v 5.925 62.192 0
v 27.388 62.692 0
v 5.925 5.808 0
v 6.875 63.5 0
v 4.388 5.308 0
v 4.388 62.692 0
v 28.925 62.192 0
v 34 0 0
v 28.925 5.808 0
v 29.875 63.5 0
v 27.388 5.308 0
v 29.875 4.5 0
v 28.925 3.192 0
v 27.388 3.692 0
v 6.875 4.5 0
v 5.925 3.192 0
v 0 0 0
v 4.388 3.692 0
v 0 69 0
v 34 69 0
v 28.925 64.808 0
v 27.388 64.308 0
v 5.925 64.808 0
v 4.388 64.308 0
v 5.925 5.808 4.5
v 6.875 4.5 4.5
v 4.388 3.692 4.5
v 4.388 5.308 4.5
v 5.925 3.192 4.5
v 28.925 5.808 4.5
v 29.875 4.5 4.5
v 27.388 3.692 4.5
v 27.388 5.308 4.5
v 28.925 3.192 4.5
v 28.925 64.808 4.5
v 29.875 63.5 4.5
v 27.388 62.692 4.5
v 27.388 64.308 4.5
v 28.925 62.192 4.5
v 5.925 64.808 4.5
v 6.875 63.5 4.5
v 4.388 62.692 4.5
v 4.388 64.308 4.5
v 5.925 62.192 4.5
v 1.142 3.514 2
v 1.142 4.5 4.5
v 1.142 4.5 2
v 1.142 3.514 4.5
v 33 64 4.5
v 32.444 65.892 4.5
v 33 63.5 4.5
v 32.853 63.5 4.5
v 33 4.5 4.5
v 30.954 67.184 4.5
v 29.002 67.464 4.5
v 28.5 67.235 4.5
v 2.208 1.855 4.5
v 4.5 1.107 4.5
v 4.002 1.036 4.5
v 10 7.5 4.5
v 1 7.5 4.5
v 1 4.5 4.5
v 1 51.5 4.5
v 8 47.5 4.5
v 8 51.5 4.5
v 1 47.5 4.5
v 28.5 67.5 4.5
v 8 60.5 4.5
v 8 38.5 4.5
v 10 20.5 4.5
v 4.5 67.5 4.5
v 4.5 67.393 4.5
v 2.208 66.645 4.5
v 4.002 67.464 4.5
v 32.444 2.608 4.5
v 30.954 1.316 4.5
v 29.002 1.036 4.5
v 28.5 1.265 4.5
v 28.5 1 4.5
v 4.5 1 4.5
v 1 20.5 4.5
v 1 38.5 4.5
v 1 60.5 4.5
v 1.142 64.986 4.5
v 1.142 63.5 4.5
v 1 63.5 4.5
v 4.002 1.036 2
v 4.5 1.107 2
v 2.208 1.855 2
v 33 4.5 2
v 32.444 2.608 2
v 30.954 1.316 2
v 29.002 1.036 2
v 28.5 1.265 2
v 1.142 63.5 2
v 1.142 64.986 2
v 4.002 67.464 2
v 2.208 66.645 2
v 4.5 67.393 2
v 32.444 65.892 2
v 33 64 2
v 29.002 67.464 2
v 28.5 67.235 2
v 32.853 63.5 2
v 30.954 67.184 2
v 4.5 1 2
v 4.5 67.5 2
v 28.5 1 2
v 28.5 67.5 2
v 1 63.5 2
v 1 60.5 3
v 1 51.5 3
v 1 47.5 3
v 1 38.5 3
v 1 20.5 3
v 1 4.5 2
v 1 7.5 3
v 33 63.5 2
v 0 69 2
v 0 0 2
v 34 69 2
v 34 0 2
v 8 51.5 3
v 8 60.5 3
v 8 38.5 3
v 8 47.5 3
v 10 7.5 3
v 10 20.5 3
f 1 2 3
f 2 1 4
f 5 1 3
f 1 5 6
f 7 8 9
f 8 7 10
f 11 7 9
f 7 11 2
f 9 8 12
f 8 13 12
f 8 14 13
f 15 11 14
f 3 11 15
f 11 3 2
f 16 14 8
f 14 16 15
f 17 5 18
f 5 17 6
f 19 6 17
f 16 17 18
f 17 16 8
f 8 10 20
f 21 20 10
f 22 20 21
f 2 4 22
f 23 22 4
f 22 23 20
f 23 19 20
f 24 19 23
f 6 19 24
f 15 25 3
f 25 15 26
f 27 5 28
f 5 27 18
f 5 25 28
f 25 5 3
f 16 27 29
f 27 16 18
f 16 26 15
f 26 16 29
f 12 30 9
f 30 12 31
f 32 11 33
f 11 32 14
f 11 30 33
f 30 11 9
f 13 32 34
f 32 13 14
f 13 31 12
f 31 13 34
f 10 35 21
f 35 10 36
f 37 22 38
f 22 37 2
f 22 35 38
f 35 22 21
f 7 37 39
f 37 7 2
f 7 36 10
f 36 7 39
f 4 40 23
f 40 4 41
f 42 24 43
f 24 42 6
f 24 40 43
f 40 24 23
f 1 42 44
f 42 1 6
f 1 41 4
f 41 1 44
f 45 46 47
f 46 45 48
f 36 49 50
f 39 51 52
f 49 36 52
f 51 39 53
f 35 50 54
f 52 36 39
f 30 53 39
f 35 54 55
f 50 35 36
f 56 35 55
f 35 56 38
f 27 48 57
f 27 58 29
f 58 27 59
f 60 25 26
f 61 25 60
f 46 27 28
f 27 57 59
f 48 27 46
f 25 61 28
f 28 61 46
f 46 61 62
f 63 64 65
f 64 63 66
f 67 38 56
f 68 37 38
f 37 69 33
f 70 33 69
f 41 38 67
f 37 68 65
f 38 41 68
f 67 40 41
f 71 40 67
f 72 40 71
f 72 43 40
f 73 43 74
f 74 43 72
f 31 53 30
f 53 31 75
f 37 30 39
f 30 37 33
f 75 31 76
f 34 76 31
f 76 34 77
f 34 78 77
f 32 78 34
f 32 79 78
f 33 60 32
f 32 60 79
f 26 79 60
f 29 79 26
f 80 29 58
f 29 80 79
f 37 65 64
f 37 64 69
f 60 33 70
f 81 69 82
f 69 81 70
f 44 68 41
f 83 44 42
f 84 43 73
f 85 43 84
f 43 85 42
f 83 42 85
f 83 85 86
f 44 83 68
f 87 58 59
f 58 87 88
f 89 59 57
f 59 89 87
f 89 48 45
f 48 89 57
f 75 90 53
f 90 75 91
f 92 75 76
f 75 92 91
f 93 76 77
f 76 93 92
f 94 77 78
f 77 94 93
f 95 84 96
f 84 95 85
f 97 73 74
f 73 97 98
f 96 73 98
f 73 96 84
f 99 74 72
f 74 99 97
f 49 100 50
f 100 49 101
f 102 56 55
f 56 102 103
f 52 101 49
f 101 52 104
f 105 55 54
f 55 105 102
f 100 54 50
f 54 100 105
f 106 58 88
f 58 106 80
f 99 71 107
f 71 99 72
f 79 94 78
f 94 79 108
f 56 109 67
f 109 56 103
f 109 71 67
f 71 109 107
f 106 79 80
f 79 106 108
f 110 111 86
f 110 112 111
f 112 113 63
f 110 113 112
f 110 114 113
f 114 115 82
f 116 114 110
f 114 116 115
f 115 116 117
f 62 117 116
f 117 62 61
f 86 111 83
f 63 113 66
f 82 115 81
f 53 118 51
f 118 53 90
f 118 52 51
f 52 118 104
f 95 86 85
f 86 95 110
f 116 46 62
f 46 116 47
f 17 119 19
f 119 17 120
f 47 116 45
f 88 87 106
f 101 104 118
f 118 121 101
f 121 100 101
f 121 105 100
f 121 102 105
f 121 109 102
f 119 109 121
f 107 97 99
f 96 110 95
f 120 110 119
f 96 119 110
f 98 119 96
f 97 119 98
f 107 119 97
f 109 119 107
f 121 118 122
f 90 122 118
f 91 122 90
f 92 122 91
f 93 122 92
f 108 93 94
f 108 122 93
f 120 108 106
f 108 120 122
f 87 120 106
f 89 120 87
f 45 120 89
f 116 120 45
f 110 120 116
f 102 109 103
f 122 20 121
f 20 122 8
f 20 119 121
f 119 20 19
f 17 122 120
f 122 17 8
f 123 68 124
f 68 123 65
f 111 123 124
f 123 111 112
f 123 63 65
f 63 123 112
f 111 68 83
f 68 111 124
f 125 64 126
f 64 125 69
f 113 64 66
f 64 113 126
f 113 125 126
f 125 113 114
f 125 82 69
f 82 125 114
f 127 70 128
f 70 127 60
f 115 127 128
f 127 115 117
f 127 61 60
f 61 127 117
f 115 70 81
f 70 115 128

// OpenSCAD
cornerRad = 3.5;
baseThickness = 1;
usbWidth = 9;
powerCenter = 55;
usbCenter = 42;
// Printed with green PLA at 210C 1.03 x 1.025 x 1.025 scaling
hdmiCenter = 13;
hdmiWidth = 13;
sdWidth = 13.5;
sdCenter = 16.75;
slotHeight = 3;
height = 3;

union() {
    difference() {
        translate([5.5,4.5,0]) cylinder(2,2,2); // Lower left
        translate([5.5,4.5,0]) screwhole();
    }
    difference() {
        translate([28.5,4.5,0]) cylinder(2,2,2); // Lower right
        translate([28.5,4.5,0]) screwhole(); // Lower right
    }
    difference() {
        translate([28.5,63.5,0]) cylinder(2,2,2); // Upper right
        translate([28.5,63.5,0]) screwhole(); // Upper right
    }
    difference() {
        translate([5.5,63.5,0]) cylinder(2,2,2); // Upper left    
        translate([5.5,63.5,0]) screwhole(); // Upper left
    }
    difference() {
        union() {
            cube([34,69,2]);
            translate([1,1,1.5]) rpiOutline(3);
        }
        translate([0,1,0]) {
            translate([0,(powerCenter-(usbWidth/2)),slotHeight]) cube([8,usbWidth,height]);
            translate([0,(usbCenter-(usbWidth/2)),slotHeight]) cube([8,usbWidth,height]);
            translate([0,hdmiCenter-(hdmiWidth/2),slotHeight]) cube([10,hdmiWidth,height]);    
        }
        translate([5.5,4.5,0]) screwhole(); // Lower left
        translate([28.5,4.5,0]) screwhole(); // Lower right
        translate([28.5,63.5,0]) screwhole(); // Upper right
        translate([5.5,63.5,0]) screwhole(); // Upper left
//        translate([1,0,0]) {
//            translate([(34-8)-sdWidth,0,slotHeight]) cube([sdWidth,2,height]); // SD Slot
//        }

    }
    
}

module rpiOutline(thick) {
    union() {
        translate([3.5,3.5,0]) corner(thick); // Lower Left
        translate([28.5,3.5,0]) corner(thick); // Lower Right
        translate([3.5,63,0]) corner(thick); //Upper Left
        translate([28.5,63,0]) corner(thick); // Upper Right
        translate([3.5,0,0]) cube([24,66.5,thick]); // Top and Bottom
        translate([0,3.5,0]) cube([32,59,thick]); // Sides
    }
}

module screwhole () {
        cylinder(6,1.375,1.375);
}
module corner (thick) {
    cylinder(thick,cornerRad,cornerRad);
}
